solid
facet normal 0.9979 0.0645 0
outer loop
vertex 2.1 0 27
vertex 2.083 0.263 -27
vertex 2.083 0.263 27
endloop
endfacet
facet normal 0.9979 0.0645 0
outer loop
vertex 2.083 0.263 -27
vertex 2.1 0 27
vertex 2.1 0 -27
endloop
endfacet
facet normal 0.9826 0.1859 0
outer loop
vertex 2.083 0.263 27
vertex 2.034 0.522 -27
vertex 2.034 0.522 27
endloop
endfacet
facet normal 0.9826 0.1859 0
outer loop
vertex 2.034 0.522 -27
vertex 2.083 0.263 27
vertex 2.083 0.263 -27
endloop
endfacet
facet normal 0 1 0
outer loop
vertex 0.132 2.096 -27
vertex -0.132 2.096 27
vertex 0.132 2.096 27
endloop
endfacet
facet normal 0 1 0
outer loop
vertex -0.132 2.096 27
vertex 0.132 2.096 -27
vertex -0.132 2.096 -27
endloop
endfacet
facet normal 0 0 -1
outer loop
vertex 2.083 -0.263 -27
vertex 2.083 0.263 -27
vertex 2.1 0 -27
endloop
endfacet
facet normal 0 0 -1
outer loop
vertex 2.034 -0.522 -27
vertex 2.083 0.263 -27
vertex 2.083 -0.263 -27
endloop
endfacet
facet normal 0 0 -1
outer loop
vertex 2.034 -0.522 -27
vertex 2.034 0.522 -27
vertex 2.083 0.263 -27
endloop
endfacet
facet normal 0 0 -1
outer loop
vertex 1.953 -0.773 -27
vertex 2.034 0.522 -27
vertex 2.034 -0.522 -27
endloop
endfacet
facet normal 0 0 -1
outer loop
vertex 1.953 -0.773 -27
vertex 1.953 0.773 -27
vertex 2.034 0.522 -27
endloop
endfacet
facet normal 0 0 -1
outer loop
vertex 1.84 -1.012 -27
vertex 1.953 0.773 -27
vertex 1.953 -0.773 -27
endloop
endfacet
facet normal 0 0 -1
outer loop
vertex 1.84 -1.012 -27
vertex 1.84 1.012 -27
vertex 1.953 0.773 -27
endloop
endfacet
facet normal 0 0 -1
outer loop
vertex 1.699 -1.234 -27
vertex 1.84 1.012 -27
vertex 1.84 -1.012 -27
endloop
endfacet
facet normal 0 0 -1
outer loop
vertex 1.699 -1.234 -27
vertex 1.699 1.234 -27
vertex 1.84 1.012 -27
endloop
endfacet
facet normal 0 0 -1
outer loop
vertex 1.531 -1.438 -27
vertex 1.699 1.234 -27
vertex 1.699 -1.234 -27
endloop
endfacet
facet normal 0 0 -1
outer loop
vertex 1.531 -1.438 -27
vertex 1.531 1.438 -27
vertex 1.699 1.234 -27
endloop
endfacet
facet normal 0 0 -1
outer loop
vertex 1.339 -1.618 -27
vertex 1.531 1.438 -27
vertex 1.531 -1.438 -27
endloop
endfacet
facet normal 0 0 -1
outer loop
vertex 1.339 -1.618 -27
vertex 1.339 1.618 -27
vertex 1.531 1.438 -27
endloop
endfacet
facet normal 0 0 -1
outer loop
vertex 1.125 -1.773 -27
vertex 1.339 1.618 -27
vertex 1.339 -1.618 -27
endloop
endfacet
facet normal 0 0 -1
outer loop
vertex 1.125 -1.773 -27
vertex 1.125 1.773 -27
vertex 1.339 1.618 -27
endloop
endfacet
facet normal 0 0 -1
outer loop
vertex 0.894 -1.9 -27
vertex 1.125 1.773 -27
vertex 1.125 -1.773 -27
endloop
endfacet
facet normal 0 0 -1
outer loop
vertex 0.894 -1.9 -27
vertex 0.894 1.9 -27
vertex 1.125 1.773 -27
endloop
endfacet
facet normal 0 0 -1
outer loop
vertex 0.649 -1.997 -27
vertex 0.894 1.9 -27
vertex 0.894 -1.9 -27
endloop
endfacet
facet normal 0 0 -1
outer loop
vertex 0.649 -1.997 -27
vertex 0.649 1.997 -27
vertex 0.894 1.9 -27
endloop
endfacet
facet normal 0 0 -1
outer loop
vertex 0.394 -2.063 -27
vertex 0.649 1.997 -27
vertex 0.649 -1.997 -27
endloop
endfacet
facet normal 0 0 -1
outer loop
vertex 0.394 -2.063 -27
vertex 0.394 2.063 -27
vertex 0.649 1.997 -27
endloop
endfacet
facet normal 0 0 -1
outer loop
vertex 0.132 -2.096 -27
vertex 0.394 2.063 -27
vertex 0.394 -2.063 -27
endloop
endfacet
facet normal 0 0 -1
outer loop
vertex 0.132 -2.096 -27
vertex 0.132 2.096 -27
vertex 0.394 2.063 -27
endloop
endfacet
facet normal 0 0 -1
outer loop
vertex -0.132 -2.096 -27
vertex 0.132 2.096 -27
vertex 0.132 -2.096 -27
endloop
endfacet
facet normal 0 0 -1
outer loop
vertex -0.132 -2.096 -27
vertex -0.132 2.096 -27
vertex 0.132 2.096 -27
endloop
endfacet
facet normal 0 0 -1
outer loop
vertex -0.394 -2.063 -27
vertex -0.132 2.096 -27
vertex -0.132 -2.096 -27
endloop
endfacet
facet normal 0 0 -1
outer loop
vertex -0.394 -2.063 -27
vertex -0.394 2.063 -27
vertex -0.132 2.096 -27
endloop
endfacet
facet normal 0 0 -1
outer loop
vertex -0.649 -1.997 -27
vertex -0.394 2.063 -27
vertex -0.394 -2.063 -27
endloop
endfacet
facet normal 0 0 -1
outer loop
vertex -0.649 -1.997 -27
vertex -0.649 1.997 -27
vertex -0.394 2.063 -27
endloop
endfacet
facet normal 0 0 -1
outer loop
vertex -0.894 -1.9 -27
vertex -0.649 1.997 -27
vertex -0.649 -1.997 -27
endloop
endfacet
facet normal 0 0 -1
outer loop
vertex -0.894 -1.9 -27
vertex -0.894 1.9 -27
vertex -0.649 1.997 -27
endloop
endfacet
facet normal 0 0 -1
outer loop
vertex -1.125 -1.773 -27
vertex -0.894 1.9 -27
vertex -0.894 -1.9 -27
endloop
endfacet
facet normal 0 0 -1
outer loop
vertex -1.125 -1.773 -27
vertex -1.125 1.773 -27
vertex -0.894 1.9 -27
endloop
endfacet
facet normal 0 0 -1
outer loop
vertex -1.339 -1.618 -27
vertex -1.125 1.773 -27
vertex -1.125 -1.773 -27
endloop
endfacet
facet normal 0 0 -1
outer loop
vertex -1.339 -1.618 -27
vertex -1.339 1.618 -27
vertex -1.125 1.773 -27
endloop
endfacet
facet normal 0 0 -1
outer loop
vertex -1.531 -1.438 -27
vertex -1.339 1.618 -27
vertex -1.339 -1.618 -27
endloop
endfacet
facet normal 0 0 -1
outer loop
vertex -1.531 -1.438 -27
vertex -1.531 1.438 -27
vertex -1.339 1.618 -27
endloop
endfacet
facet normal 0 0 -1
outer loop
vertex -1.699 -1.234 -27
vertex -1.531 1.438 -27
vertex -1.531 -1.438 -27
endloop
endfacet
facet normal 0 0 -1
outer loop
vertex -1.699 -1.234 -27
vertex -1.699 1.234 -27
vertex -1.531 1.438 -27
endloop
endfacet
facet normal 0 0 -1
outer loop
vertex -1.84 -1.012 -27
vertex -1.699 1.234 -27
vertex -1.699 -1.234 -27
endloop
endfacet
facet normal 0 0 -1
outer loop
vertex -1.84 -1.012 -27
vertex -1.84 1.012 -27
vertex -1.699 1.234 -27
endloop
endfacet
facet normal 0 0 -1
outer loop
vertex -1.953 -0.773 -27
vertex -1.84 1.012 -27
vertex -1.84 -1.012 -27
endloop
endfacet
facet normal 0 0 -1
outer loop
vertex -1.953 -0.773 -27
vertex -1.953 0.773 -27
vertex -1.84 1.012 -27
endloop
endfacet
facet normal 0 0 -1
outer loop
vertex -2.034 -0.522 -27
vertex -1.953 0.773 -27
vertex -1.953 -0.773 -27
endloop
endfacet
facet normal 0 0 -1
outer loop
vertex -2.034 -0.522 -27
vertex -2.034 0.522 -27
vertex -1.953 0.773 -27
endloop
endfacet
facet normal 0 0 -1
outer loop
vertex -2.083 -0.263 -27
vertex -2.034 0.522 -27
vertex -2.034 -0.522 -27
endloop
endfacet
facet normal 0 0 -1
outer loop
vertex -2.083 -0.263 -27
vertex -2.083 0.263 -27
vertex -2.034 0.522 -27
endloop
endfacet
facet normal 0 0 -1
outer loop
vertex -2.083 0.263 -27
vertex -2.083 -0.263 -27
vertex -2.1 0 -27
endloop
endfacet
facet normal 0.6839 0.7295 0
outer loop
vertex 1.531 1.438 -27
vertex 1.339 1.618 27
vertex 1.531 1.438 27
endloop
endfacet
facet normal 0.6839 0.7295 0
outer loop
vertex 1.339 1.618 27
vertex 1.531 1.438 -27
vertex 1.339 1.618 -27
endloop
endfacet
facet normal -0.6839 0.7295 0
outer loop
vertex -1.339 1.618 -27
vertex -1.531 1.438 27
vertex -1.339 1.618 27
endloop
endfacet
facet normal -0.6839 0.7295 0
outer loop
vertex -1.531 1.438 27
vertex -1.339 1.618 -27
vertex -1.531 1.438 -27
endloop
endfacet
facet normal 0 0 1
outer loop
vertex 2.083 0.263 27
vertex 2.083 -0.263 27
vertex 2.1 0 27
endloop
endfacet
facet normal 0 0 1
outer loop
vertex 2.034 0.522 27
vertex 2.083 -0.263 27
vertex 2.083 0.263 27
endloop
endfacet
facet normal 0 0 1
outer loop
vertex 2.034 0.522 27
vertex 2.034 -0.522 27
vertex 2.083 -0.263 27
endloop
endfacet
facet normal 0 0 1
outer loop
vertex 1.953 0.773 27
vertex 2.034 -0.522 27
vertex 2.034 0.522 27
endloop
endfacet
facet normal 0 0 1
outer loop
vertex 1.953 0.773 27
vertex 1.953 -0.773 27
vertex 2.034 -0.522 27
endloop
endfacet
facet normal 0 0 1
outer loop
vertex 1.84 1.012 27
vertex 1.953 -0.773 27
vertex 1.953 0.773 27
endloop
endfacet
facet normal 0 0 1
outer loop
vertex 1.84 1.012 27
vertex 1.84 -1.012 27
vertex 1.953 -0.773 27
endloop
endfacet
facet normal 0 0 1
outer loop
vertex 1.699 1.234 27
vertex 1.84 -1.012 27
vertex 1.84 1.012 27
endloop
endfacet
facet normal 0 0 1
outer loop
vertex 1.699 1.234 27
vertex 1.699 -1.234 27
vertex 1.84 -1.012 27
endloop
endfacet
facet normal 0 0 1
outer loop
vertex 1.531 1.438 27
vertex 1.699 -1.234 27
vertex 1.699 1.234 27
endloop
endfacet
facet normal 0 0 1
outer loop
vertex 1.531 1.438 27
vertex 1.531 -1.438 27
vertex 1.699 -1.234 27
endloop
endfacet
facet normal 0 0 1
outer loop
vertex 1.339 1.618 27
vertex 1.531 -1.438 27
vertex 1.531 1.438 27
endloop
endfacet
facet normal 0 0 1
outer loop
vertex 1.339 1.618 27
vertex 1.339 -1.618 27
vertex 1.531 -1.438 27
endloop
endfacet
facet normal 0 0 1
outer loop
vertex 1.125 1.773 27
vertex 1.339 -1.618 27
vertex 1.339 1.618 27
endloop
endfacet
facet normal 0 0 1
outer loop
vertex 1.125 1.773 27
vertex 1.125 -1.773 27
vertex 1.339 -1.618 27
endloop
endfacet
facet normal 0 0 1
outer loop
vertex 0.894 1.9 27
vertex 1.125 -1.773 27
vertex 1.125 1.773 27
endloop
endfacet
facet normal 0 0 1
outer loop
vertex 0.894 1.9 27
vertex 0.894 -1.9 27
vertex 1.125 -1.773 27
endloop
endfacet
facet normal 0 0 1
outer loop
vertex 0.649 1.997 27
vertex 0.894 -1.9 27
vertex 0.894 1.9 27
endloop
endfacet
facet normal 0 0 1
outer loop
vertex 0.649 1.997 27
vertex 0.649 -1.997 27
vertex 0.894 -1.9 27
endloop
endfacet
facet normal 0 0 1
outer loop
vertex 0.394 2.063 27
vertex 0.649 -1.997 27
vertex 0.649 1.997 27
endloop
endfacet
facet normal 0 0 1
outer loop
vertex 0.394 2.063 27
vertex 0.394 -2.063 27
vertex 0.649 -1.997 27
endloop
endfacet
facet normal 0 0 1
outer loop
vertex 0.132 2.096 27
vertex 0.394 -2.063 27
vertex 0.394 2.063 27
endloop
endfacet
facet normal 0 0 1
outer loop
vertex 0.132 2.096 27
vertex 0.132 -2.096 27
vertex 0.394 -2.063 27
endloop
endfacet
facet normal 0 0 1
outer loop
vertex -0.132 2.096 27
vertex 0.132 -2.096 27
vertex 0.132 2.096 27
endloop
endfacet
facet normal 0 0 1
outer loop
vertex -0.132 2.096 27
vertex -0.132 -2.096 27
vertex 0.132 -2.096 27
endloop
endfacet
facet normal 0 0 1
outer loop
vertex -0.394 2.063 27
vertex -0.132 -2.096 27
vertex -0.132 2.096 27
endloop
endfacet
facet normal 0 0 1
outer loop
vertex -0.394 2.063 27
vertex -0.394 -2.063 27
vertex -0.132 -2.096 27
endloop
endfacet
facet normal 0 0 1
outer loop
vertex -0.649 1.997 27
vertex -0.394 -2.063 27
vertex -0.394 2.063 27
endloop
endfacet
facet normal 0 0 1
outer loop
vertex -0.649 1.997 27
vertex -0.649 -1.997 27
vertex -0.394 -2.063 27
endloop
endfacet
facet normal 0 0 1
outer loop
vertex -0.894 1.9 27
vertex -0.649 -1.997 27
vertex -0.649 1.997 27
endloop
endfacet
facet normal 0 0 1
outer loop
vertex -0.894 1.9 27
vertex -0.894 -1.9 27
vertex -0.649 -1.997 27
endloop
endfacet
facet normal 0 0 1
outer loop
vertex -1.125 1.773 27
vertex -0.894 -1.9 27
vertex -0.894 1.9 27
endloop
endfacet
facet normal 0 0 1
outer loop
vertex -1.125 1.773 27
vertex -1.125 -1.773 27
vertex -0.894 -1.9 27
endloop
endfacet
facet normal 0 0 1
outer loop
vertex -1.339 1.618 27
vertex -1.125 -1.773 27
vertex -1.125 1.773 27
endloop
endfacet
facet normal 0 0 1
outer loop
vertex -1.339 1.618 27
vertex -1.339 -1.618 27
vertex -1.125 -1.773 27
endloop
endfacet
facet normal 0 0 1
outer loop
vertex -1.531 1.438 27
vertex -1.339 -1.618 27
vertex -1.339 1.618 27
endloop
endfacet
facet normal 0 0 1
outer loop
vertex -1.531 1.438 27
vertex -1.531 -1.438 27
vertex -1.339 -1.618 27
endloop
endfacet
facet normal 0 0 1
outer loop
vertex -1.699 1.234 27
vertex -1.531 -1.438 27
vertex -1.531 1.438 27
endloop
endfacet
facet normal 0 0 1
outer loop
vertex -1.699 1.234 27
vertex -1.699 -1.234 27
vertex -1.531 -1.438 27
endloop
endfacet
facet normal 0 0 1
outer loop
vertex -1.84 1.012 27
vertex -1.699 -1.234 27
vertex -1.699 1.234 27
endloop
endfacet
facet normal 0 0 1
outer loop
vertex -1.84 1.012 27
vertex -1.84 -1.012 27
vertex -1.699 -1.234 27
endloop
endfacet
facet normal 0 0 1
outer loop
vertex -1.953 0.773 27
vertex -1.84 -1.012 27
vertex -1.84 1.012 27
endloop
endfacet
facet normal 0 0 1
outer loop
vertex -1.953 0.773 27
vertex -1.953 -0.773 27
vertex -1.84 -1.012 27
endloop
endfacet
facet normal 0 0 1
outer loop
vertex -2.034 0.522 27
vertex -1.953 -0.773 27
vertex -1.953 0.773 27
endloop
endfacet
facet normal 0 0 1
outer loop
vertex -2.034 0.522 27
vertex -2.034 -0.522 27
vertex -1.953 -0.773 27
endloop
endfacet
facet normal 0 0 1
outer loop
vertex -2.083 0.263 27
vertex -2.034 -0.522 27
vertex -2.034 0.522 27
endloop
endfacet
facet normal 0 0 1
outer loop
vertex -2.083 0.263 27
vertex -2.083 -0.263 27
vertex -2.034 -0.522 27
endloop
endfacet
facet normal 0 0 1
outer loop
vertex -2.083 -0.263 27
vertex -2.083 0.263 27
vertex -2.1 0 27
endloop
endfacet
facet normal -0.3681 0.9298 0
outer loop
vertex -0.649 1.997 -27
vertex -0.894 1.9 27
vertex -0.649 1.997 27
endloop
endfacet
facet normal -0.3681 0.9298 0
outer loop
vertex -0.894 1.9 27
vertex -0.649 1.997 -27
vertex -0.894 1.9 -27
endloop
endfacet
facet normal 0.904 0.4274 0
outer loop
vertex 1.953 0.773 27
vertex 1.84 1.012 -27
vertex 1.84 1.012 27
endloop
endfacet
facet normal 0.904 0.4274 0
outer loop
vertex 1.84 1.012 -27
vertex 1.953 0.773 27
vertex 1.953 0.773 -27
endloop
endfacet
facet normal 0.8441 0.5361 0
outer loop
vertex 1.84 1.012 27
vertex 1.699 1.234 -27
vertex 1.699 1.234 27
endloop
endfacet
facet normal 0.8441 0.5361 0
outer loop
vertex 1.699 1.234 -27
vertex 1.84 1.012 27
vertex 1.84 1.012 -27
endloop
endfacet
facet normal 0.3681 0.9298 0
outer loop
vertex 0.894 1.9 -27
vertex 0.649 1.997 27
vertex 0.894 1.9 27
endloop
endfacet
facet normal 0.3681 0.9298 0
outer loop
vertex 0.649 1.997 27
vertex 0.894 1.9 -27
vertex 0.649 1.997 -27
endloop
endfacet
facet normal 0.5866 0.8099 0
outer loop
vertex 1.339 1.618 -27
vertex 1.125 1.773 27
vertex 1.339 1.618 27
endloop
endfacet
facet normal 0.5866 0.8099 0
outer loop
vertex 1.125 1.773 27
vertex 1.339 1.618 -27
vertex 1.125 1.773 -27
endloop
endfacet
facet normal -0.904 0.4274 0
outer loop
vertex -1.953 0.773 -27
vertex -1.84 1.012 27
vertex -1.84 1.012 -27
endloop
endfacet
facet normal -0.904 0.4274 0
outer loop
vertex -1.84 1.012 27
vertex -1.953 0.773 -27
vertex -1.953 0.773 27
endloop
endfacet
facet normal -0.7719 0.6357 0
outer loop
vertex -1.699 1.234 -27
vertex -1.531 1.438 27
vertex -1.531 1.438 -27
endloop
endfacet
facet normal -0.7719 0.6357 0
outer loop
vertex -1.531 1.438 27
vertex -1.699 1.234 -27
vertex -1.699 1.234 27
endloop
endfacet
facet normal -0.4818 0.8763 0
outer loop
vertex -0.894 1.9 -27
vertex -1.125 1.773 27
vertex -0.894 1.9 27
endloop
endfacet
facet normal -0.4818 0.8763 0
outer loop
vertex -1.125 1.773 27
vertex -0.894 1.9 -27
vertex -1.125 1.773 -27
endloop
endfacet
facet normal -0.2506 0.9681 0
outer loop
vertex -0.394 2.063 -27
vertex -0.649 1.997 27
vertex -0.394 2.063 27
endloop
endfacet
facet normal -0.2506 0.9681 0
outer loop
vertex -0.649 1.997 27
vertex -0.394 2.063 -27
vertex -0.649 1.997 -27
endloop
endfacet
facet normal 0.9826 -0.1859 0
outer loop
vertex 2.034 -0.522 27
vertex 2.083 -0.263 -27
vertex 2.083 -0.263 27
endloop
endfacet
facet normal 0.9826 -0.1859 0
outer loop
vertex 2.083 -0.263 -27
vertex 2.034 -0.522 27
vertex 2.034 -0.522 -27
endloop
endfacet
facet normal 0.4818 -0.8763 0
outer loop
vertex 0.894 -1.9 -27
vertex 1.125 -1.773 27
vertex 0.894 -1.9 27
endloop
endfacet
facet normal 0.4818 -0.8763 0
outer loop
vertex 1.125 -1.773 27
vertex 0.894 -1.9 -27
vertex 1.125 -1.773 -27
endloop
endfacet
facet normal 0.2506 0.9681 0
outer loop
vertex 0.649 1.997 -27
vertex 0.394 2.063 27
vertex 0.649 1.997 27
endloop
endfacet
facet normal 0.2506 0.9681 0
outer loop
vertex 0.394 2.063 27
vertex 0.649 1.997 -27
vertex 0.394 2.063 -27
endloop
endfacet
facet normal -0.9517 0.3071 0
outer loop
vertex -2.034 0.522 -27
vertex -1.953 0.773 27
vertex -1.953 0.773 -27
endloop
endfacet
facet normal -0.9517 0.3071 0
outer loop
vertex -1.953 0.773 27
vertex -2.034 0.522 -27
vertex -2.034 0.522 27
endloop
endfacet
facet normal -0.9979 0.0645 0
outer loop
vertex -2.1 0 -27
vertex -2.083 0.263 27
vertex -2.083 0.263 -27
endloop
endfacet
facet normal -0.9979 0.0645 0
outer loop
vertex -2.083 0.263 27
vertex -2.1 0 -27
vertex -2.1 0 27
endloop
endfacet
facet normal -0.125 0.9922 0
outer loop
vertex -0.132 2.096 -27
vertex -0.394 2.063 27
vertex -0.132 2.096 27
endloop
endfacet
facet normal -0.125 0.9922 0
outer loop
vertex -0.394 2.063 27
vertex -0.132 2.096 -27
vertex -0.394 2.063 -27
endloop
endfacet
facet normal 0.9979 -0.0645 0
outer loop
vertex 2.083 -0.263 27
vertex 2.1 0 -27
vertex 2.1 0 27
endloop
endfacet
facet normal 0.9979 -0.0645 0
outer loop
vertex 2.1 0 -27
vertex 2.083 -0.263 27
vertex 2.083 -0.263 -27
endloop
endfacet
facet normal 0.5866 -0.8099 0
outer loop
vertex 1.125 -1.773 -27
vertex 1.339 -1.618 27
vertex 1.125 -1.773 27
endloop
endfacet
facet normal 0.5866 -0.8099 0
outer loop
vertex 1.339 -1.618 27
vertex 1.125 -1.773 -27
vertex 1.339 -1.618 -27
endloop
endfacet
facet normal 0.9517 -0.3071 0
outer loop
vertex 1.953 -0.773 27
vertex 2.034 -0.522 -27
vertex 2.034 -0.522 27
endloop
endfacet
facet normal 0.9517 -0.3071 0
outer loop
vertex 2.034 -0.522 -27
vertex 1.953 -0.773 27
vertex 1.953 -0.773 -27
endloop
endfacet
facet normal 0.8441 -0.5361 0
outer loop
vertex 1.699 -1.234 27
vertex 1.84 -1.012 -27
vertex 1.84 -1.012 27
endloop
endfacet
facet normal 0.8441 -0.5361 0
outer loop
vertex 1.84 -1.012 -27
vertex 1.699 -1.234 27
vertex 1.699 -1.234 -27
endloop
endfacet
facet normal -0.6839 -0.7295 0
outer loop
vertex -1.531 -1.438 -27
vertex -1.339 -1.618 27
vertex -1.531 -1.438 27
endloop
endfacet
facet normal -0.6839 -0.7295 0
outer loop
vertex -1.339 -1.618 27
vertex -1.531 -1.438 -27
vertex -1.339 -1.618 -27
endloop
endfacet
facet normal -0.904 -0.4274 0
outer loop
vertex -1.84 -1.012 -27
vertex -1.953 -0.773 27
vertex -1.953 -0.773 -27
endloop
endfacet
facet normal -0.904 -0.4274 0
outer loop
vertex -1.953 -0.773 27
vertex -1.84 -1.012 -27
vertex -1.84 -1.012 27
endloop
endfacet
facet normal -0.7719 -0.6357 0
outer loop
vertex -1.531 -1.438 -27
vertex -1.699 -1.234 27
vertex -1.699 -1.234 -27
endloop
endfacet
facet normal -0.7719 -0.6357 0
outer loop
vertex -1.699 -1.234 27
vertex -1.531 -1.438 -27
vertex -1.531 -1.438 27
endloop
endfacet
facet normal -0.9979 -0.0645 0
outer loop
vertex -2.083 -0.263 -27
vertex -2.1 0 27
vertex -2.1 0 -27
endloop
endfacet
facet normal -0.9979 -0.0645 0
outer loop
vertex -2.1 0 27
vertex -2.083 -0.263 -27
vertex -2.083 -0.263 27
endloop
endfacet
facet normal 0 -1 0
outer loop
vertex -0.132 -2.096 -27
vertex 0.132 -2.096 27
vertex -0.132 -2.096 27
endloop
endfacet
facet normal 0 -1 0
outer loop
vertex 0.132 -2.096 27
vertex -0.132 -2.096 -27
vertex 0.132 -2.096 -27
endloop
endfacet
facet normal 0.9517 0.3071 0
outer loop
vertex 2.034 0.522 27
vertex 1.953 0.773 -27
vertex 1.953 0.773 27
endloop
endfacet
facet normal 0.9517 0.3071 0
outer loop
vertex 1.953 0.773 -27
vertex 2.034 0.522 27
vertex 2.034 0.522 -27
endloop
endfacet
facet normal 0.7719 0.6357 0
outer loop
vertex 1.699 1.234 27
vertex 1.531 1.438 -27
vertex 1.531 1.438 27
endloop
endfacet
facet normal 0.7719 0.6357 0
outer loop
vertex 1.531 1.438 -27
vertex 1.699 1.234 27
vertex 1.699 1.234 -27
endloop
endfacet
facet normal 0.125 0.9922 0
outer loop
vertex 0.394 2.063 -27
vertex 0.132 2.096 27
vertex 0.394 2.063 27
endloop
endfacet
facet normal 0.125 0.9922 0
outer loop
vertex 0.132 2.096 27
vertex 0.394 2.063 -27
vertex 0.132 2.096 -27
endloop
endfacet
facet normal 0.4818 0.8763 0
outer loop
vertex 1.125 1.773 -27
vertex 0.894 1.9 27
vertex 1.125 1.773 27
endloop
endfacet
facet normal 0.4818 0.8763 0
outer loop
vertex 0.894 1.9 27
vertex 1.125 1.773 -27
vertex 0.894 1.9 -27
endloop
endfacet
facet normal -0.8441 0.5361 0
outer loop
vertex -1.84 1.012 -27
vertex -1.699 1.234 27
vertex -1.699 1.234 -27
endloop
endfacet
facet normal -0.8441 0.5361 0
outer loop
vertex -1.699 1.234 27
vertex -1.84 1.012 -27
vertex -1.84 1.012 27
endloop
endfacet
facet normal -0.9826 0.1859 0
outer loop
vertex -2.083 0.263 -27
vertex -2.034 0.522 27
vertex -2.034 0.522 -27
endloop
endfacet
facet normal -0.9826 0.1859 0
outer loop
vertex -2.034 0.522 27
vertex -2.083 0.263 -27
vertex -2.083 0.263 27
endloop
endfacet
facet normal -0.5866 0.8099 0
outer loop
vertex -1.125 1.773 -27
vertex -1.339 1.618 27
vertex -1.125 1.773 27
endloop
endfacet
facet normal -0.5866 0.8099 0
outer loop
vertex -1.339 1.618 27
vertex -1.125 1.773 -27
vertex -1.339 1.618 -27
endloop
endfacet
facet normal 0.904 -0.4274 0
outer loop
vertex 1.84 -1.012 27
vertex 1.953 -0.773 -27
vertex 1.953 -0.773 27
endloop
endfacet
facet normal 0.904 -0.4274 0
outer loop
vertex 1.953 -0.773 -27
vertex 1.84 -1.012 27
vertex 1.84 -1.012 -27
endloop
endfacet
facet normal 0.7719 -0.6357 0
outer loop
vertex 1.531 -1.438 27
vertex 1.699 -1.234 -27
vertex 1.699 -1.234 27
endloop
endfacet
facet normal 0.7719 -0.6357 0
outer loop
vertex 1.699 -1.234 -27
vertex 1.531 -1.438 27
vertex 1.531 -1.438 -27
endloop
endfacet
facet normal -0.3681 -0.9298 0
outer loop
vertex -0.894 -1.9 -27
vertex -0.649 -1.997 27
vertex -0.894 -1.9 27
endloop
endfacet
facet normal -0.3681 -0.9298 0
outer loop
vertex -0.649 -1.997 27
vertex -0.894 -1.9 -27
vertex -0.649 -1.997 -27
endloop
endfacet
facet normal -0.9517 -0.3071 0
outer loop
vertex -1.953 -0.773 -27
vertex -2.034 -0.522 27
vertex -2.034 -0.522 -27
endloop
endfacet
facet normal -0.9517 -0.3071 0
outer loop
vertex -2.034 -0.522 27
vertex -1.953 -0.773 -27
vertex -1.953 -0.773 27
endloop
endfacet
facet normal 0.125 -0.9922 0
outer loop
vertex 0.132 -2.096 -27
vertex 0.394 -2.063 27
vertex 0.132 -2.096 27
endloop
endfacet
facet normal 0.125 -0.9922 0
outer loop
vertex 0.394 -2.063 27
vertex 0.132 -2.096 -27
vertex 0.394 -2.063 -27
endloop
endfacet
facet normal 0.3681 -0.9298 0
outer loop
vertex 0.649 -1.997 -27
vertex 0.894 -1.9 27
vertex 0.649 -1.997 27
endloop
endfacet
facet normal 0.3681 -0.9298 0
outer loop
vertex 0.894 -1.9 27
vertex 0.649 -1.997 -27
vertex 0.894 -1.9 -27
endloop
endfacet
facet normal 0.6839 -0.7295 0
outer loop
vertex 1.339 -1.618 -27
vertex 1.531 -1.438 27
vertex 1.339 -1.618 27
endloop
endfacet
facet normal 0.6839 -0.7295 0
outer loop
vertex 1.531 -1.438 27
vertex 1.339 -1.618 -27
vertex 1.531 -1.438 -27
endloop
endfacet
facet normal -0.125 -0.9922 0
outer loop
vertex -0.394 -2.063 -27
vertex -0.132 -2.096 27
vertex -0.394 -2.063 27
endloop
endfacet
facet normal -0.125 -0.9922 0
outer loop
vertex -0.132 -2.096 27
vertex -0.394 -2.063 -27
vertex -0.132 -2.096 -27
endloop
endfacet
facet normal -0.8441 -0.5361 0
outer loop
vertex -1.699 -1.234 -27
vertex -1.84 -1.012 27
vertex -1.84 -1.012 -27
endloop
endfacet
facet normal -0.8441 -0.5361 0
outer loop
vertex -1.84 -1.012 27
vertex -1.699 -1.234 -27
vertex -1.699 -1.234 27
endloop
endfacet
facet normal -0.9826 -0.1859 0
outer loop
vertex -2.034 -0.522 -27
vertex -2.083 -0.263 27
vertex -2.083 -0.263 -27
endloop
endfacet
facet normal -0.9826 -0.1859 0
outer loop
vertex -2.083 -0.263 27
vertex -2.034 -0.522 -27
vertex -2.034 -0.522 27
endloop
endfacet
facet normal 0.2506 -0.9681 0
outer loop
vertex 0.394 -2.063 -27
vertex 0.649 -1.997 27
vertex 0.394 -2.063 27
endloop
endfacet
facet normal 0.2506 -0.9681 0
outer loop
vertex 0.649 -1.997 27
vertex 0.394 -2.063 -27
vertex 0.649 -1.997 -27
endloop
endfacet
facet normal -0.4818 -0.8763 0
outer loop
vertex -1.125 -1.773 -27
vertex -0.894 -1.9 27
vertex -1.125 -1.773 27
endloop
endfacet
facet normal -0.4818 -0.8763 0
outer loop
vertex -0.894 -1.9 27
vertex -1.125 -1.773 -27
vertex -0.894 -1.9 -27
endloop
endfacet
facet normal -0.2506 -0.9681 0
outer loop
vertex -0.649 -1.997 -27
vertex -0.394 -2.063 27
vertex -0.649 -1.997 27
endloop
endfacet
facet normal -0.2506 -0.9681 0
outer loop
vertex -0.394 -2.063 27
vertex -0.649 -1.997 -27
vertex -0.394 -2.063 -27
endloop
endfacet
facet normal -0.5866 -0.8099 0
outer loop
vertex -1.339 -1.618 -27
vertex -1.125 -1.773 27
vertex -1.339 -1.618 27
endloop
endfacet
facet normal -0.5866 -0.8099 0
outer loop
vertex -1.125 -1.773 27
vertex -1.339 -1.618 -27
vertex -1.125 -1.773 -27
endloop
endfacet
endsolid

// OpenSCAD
$fn = 50;


difference() {
	union() {
		translate(v = [0, 0, -27.0000000000]) {
			cylinder(h = 54, r = 2.1000000000);
		}
	}
	union() {
		translate(v = [0, 0, -100.0000000000]) {
			cylinder(h = 200, r = 0);
		}
	}
}
